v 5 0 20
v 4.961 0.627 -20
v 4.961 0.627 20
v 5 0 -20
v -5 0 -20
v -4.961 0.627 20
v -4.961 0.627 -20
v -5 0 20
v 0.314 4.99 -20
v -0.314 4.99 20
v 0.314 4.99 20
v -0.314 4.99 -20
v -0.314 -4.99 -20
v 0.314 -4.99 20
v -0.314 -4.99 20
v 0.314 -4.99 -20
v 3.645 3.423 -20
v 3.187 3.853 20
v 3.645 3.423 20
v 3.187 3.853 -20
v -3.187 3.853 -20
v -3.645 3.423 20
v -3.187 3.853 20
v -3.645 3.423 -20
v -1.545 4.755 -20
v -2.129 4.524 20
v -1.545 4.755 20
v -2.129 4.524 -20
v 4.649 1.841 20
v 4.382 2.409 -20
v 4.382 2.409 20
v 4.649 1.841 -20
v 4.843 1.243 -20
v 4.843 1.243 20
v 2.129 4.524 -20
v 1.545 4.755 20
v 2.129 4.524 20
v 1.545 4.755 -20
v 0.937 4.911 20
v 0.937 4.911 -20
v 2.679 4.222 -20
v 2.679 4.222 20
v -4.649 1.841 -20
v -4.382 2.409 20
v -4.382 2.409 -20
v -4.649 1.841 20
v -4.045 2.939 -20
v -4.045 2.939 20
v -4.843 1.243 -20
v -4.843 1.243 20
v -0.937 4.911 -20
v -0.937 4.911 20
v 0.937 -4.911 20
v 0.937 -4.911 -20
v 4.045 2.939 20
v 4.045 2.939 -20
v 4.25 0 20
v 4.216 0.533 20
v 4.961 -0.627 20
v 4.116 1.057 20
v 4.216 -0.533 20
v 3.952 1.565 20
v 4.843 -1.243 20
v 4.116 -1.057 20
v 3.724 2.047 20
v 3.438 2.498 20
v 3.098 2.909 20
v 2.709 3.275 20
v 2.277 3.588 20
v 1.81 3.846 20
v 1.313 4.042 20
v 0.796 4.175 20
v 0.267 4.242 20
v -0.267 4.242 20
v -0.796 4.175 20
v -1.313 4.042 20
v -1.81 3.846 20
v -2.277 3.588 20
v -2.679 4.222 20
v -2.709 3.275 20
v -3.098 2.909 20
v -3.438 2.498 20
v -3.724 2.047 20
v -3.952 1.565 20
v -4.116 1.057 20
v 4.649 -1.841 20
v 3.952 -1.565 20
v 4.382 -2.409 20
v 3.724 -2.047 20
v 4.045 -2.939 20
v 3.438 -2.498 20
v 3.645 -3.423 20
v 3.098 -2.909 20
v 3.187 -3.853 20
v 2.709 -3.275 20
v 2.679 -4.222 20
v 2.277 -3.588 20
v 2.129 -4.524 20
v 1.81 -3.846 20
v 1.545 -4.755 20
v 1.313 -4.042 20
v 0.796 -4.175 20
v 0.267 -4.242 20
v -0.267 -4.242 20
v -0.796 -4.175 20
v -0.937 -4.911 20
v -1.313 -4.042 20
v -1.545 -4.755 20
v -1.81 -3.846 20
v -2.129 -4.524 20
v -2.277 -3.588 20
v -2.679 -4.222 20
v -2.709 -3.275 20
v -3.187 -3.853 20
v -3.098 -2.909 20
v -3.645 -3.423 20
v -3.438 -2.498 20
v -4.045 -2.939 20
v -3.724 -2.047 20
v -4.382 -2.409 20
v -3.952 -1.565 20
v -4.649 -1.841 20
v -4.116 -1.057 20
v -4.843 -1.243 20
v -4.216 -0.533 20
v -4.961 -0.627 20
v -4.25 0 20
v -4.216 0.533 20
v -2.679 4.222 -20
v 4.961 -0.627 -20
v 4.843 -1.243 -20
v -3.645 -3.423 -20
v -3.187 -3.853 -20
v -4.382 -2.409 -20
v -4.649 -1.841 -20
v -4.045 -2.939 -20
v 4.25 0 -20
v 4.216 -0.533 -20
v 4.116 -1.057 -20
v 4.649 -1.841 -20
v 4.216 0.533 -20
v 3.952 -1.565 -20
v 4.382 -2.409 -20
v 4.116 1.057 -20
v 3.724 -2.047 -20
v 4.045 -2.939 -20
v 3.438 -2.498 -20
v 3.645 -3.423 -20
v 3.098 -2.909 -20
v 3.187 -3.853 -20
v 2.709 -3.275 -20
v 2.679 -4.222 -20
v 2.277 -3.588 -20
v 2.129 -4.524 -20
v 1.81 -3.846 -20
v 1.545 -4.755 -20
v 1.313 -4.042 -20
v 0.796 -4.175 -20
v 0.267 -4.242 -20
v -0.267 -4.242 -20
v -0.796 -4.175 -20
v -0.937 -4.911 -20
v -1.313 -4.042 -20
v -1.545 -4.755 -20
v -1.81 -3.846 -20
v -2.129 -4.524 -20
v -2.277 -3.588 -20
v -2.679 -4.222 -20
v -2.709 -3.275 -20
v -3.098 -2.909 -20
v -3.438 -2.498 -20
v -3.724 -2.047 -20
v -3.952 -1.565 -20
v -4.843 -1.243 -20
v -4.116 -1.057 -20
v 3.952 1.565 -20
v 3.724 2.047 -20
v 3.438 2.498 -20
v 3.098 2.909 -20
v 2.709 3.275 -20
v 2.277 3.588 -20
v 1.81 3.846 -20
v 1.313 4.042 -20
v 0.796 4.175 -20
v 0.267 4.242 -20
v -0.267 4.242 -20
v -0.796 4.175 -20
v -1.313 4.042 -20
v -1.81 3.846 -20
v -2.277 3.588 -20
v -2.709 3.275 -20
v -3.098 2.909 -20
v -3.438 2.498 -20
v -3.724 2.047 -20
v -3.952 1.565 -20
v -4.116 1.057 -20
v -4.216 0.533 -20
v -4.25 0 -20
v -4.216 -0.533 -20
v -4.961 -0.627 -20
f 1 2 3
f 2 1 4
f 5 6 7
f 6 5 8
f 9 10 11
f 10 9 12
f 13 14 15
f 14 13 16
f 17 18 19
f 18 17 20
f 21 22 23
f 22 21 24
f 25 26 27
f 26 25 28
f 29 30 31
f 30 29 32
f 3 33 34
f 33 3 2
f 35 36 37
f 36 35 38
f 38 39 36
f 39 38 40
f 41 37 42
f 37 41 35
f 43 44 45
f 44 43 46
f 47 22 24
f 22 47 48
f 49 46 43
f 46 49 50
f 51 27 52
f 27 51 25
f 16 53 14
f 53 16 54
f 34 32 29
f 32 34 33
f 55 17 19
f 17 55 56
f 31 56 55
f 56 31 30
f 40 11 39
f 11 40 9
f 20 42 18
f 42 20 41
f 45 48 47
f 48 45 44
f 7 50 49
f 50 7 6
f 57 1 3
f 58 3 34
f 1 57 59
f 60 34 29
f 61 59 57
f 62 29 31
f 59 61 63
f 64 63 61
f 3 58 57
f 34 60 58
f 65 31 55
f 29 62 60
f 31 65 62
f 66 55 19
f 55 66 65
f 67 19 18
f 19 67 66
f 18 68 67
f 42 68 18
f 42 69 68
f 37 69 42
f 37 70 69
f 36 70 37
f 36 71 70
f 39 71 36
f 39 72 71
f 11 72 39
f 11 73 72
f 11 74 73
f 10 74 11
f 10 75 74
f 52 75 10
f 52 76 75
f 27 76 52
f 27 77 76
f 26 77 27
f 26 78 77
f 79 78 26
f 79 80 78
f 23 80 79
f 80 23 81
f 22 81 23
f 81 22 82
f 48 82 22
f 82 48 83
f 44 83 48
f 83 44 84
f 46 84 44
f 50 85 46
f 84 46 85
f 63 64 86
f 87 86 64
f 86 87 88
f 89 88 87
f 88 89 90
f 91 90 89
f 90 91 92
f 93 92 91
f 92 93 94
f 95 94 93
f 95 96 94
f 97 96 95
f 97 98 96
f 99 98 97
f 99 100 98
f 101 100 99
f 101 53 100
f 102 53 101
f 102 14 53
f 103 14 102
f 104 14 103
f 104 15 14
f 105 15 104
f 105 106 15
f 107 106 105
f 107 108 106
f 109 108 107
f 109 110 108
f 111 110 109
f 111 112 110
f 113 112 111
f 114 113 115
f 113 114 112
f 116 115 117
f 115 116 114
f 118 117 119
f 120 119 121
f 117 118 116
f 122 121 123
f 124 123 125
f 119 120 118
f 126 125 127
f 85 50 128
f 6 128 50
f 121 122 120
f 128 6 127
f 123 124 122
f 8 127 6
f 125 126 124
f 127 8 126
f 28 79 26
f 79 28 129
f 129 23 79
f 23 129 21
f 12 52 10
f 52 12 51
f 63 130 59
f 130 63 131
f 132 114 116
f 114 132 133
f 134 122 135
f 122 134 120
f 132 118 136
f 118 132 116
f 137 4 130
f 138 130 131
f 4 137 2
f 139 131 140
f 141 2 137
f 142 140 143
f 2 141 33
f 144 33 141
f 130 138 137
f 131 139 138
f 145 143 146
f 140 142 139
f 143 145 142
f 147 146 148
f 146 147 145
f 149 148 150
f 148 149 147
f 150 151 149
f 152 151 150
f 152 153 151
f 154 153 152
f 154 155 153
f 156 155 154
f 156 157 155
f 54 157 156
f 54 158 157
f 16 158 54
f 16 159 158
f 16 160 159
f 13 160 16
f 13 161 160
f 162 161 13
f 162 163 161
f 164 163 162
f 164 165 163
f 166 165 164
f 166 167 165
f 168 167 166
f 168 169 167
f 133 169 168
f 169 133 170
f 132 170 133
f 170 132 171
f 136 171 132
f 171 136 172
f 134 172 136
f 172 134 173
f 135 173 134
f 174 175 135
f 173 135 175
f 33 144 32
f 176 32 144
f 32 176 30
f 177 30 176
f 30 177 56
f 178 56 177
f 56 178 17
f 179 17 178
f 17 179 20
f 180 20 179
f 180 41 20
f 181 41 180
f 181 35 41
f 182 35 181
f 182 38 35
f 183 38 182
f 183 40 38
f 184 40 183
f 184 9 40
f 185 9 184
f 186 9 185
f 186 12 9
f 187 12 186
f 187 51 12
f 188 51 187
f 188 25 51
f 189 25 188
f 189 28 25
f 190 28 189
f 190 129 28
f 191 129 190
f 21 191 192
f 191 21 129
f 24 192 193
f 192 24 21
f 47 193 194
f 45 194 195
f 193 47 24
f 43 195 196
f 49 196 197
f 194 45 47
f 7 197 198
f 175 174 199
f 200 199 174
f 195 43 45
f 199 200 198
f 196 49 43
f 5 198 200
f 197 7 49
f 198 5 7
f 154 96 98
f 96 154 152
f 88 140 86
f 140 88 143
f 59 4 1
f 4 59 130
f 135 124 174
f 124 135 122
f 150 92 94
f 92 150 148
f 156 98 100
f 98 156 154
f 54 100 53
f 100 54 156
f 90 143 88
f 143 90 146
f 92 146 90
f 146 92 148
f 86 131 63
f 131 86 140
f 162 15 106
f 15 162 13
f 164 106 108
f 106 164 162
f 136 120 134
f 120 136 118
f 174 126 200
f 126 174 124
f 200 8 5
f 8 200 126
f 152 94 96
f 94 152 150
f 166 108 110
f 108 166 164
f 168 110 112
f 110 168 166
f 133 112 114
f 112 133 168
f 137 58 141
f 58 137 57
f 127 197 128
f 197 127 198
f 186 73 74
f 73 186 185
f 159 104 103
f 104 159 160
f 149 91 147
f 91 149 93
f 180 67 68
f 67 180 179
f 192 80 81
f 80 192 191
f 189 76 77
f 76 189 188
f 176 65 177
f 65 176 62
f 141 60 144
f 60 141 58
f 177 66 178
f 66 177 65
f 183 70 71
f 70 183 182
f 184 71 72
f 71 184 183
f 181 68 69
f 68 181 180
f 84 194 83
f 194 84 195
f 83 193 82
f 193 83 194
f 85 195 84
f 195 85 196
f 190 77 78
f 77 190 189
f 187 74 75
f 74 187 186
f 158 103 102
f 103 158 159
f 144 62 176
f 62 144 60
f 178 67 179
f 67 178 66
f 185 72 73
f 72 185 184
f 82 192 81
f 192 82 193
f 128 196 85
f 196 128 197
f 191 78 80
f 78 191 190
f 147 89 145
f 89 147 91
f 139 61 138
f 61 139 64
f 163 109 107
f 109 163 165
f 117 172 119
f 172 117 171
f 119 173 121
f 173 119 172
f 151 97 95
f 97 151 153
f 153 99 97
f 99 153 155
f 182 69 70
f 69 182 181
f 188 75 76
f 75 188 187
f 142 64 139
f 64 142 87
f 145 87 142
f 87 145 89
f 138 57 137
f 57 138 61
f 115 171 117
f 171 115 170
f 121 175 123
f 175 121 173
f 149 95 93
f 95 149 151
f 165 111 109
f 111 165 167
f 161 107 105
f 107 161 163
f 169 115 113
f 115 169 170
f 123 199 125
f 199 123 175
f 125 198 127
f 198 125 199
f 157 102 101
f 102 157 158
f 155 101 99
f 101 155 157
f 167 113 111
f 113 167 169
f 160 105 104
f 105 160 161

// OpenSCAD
$fn = 50;


difference() {
	union() {
		translate(v = [0, 0, -20.0000000000]) {
			cylinder(h = 40, r = 5.0000000000);
		}
	}
	union() {
		translate(v = [0, 0, -100.0000000000]) {
			cylinder(h = 200, r = 4.2500000000);
		}
	}
}
